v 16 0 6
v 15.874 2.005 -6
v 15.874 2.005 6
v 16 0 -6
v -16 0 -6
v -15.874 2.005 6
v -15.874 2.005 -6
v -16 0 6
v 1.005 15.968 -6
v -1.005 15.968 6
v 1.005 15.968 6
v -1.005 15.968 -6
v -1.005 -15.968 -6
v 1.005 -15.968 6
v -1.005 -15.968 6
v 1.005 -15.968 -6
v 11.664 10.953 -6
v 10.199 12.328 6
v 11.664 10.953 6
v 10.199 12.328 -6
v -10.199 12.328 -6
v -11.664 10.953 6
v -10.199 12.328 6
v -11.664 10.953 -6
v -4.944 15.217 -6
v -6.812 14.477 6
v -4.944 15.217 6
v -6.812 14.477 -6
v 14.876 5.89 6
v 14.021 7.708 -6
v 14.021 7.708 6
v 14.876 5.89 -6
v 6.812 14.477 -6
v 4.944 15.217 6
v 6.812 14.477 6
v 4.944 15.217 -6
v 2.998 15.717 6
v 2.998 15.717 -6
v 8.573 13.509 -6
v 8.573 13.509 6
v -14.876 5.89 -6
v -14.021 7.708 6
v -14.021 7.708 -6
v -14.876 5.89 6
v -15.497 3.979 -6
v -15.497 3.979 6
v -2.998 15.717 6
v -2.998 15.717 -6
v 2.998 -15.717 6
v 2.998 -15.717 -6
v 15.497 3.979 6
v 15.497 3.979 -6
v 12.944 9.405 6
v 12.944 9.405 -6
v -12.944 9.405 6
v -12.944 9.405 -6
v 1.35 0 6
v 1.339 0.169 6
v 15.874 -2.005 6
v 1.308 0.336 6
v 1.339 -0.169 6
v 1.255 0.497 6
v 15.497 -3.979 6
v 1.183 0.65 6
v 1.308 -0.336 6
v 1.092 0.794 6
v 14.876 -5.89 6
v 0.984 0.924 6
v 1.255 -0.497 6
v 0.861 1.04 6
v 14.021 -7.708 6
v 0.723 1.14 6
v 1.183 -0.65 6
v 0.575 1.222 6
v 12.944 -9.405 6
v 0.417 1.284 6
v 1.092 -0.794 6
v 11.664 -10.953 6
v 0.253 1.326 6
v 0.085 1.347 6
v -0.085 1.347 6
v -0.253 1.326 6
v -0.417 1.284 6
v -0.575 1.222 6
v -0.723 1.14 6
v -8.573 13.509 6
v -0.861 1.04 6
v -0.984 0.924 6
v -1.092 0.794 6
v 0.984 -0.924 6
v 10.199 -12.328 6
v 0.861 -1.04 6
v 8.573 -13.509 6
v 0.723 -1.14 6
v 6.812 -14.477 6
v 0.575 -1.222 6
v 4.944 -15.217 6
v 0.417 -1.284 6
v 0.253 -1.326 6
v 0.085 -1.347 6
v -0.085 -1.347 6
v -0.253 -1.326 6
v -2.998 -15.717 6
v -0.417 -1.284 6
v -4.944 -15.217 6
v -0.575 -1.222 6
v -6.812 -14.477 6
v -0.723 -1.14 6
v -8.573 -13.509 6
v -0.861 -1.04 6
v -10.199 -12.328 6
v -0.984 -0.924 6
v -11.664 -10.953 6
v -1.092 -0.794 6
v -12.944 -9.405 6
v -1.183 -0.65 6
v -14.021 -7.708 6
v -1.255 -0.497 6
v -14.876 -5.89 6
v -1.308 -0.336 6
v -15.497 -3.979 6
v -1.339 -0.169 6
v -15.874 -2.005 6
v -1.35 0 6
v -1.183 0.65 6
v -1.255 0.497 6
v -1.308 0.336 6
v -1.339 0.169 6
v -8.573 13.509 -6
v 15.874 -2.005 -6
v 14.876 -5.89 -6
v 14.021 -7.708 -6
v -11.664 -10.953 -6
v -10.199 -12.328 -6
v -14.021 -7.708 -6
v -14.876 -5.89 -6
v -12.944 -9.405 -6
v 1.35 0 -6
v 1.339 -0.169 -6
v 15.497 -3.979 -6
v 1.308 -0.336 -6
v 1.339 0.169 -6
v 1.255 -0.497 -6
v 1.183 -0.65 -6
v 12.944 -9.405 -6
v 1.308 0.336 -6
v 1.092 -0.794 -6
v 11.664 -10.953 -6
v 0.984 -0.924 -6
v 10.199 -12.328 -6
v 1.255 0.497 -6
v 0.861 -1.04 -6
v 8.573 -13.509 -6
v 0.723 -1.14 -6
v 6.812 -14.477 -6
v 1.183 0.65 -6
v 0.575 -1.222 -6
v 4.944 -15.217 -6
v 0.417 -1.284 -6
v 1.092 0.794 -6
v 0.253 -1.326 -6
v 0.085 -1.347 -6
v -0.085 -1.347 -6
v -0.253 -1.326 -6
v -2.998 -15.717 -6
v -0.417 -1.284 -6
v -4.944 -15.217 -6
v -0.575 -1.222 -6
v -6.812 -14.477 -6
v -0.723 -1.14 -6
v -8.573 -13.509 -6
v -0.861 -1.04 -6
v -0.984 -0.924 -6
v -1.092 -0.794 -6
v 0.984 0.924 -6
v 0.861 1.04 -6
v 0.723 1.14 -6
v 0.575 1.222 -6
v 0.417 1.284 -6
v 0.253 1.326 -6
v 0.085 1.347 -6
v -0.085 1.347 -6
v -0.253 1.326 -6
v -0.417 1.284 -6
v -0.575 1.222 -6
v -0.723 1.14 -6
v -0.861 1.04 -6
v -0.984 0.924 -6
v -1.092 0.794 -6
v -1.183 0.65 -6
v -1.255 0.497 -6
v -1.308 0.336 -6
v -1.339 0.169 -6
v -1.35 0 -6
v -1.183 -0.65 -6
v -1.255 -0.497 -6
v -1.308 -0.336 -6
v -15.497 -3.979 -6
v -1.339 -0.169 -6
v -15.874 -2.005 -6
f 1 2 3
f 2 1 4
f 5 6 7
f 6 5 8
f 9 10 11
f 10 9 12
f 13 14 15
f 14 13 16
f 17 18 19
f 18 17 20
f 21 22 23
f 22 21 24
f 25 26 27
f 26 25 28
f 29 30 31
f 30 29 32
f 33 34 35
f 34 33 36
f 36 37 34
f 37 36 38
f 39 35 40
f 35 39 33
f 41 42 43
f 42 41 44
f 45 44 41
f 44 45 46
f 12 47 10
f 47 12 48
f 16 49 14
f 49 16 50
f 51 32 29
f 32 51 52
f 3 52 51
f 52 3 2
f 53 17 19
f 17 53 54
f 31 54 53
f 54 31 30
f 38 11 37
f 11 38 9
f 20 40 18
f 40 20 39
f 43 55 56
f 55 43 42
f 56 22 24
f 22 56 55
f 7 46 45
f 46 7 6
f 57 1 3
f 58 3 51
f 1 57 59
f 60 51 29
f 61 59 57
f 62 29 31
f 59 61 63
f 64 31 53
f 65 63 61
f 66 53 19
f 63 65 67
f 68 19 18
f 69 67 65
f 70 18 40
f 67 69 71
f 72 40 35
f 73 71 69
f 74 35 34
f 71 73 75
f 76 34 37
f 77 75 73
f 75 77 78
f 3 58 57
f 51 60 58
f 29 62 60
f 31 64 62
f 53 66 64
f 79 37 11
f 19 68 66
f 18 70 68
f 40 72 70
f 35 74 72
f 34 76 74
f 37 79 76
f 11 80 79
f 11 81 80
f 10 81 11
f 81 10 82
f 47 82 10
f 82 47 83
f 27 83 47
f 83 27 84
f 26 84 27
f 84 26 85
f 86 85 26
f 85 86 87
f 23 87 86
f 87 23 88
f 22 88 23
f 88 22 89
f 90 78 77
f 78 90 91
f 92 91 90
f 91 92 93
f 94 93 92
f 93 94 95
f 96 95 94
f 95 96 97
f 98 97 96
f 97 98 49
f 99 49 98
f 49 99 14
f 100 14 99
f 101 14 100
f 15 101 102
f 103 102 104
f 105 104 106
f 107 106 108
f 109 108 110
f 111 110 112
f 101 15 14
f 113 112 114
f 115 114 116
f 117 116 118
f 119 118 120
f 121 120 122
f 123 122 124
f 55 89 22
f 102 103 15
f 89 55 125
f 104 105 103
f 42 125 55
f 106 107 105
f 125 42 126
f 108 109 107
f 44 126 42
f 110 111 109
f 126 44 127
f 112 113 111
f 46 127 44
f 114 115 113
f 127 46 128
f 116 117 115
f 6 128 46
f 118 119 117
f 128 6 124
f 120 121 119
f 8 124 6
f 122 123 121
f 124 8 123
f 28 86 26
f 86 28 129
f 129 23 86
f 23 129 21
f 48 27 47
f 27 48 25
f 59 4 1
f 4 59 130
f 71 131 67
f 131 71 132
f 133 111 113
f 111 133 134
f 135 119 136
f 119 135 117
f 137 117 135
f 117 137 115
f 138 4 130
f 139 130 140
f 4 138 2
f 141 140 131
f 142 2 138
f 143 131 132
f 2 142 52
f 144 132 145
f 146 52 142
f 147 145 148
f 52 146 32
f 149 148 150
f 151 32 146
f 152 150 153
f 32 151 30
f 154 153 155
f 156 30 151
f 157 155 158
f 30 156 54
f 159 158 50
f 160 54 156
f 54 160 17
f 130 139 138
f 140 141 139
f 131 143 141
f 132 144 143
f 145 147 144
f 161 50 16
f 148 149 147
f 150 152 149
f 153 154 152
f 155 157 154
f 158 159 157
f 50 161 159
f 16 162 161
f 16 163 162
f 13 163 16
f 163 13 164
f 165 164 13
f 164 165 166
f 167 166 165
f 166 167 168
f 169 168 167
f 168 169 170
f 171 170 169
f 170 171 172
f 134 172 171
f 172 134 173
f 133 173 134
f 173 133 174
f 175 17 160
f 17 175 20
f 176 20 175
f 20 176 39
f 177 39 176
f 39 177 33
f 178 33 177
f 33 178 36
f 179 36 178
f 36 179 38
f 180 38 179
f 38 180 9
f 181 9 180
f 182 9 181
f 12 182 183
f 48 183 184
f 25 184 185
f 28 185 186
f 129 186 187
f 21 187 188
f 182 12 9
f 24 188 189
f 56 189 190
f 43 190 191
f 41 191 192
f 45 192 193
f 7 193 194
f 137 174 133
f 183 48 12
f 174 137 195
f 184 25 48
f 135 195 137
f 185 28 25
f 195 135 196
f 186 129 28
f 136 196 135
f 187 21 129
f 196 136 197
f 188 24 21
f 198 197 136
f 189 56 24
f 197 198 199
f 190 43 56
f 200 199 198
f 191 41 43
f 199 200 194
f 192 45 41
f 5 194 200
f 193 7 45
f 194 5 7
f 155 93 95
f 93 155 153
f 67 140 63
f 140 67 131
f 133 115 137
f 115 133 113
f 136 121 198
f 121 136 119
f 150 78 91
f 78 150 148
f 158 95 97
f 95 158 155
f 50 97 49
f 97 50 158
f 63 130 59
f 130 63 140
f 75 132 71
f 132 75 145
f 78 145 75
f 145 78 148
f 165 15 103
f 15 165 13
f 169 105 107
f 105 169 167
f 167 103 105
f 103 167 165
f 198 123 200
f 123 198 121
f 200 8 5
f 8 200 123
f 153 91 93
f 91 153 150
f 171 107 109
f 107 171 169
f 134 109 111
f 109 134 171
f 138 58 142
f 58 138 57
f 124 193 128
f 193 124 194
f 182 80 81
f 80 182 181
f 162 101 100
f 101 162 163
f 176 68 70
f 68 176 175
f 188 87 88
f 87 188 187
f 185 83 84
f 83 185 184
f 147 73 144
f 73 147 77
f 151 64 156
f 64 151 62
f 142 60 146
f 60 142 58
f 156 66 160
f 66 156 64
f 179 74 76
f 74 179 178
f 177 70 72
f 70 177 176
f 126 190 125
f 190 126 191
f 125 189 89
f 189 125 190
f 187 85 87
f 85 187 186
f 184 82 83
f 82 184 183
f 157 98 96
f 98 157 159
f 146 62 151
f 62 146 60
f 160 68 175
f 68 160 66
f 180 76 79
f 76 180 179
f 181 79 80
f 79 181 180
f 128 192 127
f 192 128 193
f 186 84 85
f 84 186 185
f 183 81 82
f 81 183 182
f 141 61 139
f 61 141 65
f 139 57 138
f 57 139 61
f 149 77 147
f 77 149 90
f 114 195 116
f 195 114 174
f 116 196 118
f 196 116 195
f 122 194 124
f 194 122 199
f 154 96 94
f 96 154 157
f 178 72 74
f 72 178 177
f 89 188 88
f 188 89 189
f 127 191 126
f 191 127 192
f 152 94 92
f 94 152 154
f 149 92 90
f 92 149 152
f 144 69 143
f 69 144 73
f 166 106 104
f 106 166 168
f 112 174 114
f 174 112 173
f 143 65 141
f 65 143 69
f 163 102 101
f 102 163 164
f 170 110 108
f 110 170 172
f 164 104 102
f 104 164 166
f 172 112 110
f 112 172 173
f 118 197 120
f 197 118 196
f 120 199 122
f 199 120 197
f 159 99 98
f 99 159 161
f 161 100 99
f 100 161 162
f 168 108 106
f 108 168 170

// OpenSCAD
$fn = 50;


difference() {
	union() {
		translate(v = [0, 0, -6.0000000000]) {
			cylinder(h = 12, r = 16.0000000000);
		}
	}
	union() {
		translate(v = [0, 0, -100.0000000000]) {
			cylinder(h = 200, r = 1.3500000000);
		}
	}
}
